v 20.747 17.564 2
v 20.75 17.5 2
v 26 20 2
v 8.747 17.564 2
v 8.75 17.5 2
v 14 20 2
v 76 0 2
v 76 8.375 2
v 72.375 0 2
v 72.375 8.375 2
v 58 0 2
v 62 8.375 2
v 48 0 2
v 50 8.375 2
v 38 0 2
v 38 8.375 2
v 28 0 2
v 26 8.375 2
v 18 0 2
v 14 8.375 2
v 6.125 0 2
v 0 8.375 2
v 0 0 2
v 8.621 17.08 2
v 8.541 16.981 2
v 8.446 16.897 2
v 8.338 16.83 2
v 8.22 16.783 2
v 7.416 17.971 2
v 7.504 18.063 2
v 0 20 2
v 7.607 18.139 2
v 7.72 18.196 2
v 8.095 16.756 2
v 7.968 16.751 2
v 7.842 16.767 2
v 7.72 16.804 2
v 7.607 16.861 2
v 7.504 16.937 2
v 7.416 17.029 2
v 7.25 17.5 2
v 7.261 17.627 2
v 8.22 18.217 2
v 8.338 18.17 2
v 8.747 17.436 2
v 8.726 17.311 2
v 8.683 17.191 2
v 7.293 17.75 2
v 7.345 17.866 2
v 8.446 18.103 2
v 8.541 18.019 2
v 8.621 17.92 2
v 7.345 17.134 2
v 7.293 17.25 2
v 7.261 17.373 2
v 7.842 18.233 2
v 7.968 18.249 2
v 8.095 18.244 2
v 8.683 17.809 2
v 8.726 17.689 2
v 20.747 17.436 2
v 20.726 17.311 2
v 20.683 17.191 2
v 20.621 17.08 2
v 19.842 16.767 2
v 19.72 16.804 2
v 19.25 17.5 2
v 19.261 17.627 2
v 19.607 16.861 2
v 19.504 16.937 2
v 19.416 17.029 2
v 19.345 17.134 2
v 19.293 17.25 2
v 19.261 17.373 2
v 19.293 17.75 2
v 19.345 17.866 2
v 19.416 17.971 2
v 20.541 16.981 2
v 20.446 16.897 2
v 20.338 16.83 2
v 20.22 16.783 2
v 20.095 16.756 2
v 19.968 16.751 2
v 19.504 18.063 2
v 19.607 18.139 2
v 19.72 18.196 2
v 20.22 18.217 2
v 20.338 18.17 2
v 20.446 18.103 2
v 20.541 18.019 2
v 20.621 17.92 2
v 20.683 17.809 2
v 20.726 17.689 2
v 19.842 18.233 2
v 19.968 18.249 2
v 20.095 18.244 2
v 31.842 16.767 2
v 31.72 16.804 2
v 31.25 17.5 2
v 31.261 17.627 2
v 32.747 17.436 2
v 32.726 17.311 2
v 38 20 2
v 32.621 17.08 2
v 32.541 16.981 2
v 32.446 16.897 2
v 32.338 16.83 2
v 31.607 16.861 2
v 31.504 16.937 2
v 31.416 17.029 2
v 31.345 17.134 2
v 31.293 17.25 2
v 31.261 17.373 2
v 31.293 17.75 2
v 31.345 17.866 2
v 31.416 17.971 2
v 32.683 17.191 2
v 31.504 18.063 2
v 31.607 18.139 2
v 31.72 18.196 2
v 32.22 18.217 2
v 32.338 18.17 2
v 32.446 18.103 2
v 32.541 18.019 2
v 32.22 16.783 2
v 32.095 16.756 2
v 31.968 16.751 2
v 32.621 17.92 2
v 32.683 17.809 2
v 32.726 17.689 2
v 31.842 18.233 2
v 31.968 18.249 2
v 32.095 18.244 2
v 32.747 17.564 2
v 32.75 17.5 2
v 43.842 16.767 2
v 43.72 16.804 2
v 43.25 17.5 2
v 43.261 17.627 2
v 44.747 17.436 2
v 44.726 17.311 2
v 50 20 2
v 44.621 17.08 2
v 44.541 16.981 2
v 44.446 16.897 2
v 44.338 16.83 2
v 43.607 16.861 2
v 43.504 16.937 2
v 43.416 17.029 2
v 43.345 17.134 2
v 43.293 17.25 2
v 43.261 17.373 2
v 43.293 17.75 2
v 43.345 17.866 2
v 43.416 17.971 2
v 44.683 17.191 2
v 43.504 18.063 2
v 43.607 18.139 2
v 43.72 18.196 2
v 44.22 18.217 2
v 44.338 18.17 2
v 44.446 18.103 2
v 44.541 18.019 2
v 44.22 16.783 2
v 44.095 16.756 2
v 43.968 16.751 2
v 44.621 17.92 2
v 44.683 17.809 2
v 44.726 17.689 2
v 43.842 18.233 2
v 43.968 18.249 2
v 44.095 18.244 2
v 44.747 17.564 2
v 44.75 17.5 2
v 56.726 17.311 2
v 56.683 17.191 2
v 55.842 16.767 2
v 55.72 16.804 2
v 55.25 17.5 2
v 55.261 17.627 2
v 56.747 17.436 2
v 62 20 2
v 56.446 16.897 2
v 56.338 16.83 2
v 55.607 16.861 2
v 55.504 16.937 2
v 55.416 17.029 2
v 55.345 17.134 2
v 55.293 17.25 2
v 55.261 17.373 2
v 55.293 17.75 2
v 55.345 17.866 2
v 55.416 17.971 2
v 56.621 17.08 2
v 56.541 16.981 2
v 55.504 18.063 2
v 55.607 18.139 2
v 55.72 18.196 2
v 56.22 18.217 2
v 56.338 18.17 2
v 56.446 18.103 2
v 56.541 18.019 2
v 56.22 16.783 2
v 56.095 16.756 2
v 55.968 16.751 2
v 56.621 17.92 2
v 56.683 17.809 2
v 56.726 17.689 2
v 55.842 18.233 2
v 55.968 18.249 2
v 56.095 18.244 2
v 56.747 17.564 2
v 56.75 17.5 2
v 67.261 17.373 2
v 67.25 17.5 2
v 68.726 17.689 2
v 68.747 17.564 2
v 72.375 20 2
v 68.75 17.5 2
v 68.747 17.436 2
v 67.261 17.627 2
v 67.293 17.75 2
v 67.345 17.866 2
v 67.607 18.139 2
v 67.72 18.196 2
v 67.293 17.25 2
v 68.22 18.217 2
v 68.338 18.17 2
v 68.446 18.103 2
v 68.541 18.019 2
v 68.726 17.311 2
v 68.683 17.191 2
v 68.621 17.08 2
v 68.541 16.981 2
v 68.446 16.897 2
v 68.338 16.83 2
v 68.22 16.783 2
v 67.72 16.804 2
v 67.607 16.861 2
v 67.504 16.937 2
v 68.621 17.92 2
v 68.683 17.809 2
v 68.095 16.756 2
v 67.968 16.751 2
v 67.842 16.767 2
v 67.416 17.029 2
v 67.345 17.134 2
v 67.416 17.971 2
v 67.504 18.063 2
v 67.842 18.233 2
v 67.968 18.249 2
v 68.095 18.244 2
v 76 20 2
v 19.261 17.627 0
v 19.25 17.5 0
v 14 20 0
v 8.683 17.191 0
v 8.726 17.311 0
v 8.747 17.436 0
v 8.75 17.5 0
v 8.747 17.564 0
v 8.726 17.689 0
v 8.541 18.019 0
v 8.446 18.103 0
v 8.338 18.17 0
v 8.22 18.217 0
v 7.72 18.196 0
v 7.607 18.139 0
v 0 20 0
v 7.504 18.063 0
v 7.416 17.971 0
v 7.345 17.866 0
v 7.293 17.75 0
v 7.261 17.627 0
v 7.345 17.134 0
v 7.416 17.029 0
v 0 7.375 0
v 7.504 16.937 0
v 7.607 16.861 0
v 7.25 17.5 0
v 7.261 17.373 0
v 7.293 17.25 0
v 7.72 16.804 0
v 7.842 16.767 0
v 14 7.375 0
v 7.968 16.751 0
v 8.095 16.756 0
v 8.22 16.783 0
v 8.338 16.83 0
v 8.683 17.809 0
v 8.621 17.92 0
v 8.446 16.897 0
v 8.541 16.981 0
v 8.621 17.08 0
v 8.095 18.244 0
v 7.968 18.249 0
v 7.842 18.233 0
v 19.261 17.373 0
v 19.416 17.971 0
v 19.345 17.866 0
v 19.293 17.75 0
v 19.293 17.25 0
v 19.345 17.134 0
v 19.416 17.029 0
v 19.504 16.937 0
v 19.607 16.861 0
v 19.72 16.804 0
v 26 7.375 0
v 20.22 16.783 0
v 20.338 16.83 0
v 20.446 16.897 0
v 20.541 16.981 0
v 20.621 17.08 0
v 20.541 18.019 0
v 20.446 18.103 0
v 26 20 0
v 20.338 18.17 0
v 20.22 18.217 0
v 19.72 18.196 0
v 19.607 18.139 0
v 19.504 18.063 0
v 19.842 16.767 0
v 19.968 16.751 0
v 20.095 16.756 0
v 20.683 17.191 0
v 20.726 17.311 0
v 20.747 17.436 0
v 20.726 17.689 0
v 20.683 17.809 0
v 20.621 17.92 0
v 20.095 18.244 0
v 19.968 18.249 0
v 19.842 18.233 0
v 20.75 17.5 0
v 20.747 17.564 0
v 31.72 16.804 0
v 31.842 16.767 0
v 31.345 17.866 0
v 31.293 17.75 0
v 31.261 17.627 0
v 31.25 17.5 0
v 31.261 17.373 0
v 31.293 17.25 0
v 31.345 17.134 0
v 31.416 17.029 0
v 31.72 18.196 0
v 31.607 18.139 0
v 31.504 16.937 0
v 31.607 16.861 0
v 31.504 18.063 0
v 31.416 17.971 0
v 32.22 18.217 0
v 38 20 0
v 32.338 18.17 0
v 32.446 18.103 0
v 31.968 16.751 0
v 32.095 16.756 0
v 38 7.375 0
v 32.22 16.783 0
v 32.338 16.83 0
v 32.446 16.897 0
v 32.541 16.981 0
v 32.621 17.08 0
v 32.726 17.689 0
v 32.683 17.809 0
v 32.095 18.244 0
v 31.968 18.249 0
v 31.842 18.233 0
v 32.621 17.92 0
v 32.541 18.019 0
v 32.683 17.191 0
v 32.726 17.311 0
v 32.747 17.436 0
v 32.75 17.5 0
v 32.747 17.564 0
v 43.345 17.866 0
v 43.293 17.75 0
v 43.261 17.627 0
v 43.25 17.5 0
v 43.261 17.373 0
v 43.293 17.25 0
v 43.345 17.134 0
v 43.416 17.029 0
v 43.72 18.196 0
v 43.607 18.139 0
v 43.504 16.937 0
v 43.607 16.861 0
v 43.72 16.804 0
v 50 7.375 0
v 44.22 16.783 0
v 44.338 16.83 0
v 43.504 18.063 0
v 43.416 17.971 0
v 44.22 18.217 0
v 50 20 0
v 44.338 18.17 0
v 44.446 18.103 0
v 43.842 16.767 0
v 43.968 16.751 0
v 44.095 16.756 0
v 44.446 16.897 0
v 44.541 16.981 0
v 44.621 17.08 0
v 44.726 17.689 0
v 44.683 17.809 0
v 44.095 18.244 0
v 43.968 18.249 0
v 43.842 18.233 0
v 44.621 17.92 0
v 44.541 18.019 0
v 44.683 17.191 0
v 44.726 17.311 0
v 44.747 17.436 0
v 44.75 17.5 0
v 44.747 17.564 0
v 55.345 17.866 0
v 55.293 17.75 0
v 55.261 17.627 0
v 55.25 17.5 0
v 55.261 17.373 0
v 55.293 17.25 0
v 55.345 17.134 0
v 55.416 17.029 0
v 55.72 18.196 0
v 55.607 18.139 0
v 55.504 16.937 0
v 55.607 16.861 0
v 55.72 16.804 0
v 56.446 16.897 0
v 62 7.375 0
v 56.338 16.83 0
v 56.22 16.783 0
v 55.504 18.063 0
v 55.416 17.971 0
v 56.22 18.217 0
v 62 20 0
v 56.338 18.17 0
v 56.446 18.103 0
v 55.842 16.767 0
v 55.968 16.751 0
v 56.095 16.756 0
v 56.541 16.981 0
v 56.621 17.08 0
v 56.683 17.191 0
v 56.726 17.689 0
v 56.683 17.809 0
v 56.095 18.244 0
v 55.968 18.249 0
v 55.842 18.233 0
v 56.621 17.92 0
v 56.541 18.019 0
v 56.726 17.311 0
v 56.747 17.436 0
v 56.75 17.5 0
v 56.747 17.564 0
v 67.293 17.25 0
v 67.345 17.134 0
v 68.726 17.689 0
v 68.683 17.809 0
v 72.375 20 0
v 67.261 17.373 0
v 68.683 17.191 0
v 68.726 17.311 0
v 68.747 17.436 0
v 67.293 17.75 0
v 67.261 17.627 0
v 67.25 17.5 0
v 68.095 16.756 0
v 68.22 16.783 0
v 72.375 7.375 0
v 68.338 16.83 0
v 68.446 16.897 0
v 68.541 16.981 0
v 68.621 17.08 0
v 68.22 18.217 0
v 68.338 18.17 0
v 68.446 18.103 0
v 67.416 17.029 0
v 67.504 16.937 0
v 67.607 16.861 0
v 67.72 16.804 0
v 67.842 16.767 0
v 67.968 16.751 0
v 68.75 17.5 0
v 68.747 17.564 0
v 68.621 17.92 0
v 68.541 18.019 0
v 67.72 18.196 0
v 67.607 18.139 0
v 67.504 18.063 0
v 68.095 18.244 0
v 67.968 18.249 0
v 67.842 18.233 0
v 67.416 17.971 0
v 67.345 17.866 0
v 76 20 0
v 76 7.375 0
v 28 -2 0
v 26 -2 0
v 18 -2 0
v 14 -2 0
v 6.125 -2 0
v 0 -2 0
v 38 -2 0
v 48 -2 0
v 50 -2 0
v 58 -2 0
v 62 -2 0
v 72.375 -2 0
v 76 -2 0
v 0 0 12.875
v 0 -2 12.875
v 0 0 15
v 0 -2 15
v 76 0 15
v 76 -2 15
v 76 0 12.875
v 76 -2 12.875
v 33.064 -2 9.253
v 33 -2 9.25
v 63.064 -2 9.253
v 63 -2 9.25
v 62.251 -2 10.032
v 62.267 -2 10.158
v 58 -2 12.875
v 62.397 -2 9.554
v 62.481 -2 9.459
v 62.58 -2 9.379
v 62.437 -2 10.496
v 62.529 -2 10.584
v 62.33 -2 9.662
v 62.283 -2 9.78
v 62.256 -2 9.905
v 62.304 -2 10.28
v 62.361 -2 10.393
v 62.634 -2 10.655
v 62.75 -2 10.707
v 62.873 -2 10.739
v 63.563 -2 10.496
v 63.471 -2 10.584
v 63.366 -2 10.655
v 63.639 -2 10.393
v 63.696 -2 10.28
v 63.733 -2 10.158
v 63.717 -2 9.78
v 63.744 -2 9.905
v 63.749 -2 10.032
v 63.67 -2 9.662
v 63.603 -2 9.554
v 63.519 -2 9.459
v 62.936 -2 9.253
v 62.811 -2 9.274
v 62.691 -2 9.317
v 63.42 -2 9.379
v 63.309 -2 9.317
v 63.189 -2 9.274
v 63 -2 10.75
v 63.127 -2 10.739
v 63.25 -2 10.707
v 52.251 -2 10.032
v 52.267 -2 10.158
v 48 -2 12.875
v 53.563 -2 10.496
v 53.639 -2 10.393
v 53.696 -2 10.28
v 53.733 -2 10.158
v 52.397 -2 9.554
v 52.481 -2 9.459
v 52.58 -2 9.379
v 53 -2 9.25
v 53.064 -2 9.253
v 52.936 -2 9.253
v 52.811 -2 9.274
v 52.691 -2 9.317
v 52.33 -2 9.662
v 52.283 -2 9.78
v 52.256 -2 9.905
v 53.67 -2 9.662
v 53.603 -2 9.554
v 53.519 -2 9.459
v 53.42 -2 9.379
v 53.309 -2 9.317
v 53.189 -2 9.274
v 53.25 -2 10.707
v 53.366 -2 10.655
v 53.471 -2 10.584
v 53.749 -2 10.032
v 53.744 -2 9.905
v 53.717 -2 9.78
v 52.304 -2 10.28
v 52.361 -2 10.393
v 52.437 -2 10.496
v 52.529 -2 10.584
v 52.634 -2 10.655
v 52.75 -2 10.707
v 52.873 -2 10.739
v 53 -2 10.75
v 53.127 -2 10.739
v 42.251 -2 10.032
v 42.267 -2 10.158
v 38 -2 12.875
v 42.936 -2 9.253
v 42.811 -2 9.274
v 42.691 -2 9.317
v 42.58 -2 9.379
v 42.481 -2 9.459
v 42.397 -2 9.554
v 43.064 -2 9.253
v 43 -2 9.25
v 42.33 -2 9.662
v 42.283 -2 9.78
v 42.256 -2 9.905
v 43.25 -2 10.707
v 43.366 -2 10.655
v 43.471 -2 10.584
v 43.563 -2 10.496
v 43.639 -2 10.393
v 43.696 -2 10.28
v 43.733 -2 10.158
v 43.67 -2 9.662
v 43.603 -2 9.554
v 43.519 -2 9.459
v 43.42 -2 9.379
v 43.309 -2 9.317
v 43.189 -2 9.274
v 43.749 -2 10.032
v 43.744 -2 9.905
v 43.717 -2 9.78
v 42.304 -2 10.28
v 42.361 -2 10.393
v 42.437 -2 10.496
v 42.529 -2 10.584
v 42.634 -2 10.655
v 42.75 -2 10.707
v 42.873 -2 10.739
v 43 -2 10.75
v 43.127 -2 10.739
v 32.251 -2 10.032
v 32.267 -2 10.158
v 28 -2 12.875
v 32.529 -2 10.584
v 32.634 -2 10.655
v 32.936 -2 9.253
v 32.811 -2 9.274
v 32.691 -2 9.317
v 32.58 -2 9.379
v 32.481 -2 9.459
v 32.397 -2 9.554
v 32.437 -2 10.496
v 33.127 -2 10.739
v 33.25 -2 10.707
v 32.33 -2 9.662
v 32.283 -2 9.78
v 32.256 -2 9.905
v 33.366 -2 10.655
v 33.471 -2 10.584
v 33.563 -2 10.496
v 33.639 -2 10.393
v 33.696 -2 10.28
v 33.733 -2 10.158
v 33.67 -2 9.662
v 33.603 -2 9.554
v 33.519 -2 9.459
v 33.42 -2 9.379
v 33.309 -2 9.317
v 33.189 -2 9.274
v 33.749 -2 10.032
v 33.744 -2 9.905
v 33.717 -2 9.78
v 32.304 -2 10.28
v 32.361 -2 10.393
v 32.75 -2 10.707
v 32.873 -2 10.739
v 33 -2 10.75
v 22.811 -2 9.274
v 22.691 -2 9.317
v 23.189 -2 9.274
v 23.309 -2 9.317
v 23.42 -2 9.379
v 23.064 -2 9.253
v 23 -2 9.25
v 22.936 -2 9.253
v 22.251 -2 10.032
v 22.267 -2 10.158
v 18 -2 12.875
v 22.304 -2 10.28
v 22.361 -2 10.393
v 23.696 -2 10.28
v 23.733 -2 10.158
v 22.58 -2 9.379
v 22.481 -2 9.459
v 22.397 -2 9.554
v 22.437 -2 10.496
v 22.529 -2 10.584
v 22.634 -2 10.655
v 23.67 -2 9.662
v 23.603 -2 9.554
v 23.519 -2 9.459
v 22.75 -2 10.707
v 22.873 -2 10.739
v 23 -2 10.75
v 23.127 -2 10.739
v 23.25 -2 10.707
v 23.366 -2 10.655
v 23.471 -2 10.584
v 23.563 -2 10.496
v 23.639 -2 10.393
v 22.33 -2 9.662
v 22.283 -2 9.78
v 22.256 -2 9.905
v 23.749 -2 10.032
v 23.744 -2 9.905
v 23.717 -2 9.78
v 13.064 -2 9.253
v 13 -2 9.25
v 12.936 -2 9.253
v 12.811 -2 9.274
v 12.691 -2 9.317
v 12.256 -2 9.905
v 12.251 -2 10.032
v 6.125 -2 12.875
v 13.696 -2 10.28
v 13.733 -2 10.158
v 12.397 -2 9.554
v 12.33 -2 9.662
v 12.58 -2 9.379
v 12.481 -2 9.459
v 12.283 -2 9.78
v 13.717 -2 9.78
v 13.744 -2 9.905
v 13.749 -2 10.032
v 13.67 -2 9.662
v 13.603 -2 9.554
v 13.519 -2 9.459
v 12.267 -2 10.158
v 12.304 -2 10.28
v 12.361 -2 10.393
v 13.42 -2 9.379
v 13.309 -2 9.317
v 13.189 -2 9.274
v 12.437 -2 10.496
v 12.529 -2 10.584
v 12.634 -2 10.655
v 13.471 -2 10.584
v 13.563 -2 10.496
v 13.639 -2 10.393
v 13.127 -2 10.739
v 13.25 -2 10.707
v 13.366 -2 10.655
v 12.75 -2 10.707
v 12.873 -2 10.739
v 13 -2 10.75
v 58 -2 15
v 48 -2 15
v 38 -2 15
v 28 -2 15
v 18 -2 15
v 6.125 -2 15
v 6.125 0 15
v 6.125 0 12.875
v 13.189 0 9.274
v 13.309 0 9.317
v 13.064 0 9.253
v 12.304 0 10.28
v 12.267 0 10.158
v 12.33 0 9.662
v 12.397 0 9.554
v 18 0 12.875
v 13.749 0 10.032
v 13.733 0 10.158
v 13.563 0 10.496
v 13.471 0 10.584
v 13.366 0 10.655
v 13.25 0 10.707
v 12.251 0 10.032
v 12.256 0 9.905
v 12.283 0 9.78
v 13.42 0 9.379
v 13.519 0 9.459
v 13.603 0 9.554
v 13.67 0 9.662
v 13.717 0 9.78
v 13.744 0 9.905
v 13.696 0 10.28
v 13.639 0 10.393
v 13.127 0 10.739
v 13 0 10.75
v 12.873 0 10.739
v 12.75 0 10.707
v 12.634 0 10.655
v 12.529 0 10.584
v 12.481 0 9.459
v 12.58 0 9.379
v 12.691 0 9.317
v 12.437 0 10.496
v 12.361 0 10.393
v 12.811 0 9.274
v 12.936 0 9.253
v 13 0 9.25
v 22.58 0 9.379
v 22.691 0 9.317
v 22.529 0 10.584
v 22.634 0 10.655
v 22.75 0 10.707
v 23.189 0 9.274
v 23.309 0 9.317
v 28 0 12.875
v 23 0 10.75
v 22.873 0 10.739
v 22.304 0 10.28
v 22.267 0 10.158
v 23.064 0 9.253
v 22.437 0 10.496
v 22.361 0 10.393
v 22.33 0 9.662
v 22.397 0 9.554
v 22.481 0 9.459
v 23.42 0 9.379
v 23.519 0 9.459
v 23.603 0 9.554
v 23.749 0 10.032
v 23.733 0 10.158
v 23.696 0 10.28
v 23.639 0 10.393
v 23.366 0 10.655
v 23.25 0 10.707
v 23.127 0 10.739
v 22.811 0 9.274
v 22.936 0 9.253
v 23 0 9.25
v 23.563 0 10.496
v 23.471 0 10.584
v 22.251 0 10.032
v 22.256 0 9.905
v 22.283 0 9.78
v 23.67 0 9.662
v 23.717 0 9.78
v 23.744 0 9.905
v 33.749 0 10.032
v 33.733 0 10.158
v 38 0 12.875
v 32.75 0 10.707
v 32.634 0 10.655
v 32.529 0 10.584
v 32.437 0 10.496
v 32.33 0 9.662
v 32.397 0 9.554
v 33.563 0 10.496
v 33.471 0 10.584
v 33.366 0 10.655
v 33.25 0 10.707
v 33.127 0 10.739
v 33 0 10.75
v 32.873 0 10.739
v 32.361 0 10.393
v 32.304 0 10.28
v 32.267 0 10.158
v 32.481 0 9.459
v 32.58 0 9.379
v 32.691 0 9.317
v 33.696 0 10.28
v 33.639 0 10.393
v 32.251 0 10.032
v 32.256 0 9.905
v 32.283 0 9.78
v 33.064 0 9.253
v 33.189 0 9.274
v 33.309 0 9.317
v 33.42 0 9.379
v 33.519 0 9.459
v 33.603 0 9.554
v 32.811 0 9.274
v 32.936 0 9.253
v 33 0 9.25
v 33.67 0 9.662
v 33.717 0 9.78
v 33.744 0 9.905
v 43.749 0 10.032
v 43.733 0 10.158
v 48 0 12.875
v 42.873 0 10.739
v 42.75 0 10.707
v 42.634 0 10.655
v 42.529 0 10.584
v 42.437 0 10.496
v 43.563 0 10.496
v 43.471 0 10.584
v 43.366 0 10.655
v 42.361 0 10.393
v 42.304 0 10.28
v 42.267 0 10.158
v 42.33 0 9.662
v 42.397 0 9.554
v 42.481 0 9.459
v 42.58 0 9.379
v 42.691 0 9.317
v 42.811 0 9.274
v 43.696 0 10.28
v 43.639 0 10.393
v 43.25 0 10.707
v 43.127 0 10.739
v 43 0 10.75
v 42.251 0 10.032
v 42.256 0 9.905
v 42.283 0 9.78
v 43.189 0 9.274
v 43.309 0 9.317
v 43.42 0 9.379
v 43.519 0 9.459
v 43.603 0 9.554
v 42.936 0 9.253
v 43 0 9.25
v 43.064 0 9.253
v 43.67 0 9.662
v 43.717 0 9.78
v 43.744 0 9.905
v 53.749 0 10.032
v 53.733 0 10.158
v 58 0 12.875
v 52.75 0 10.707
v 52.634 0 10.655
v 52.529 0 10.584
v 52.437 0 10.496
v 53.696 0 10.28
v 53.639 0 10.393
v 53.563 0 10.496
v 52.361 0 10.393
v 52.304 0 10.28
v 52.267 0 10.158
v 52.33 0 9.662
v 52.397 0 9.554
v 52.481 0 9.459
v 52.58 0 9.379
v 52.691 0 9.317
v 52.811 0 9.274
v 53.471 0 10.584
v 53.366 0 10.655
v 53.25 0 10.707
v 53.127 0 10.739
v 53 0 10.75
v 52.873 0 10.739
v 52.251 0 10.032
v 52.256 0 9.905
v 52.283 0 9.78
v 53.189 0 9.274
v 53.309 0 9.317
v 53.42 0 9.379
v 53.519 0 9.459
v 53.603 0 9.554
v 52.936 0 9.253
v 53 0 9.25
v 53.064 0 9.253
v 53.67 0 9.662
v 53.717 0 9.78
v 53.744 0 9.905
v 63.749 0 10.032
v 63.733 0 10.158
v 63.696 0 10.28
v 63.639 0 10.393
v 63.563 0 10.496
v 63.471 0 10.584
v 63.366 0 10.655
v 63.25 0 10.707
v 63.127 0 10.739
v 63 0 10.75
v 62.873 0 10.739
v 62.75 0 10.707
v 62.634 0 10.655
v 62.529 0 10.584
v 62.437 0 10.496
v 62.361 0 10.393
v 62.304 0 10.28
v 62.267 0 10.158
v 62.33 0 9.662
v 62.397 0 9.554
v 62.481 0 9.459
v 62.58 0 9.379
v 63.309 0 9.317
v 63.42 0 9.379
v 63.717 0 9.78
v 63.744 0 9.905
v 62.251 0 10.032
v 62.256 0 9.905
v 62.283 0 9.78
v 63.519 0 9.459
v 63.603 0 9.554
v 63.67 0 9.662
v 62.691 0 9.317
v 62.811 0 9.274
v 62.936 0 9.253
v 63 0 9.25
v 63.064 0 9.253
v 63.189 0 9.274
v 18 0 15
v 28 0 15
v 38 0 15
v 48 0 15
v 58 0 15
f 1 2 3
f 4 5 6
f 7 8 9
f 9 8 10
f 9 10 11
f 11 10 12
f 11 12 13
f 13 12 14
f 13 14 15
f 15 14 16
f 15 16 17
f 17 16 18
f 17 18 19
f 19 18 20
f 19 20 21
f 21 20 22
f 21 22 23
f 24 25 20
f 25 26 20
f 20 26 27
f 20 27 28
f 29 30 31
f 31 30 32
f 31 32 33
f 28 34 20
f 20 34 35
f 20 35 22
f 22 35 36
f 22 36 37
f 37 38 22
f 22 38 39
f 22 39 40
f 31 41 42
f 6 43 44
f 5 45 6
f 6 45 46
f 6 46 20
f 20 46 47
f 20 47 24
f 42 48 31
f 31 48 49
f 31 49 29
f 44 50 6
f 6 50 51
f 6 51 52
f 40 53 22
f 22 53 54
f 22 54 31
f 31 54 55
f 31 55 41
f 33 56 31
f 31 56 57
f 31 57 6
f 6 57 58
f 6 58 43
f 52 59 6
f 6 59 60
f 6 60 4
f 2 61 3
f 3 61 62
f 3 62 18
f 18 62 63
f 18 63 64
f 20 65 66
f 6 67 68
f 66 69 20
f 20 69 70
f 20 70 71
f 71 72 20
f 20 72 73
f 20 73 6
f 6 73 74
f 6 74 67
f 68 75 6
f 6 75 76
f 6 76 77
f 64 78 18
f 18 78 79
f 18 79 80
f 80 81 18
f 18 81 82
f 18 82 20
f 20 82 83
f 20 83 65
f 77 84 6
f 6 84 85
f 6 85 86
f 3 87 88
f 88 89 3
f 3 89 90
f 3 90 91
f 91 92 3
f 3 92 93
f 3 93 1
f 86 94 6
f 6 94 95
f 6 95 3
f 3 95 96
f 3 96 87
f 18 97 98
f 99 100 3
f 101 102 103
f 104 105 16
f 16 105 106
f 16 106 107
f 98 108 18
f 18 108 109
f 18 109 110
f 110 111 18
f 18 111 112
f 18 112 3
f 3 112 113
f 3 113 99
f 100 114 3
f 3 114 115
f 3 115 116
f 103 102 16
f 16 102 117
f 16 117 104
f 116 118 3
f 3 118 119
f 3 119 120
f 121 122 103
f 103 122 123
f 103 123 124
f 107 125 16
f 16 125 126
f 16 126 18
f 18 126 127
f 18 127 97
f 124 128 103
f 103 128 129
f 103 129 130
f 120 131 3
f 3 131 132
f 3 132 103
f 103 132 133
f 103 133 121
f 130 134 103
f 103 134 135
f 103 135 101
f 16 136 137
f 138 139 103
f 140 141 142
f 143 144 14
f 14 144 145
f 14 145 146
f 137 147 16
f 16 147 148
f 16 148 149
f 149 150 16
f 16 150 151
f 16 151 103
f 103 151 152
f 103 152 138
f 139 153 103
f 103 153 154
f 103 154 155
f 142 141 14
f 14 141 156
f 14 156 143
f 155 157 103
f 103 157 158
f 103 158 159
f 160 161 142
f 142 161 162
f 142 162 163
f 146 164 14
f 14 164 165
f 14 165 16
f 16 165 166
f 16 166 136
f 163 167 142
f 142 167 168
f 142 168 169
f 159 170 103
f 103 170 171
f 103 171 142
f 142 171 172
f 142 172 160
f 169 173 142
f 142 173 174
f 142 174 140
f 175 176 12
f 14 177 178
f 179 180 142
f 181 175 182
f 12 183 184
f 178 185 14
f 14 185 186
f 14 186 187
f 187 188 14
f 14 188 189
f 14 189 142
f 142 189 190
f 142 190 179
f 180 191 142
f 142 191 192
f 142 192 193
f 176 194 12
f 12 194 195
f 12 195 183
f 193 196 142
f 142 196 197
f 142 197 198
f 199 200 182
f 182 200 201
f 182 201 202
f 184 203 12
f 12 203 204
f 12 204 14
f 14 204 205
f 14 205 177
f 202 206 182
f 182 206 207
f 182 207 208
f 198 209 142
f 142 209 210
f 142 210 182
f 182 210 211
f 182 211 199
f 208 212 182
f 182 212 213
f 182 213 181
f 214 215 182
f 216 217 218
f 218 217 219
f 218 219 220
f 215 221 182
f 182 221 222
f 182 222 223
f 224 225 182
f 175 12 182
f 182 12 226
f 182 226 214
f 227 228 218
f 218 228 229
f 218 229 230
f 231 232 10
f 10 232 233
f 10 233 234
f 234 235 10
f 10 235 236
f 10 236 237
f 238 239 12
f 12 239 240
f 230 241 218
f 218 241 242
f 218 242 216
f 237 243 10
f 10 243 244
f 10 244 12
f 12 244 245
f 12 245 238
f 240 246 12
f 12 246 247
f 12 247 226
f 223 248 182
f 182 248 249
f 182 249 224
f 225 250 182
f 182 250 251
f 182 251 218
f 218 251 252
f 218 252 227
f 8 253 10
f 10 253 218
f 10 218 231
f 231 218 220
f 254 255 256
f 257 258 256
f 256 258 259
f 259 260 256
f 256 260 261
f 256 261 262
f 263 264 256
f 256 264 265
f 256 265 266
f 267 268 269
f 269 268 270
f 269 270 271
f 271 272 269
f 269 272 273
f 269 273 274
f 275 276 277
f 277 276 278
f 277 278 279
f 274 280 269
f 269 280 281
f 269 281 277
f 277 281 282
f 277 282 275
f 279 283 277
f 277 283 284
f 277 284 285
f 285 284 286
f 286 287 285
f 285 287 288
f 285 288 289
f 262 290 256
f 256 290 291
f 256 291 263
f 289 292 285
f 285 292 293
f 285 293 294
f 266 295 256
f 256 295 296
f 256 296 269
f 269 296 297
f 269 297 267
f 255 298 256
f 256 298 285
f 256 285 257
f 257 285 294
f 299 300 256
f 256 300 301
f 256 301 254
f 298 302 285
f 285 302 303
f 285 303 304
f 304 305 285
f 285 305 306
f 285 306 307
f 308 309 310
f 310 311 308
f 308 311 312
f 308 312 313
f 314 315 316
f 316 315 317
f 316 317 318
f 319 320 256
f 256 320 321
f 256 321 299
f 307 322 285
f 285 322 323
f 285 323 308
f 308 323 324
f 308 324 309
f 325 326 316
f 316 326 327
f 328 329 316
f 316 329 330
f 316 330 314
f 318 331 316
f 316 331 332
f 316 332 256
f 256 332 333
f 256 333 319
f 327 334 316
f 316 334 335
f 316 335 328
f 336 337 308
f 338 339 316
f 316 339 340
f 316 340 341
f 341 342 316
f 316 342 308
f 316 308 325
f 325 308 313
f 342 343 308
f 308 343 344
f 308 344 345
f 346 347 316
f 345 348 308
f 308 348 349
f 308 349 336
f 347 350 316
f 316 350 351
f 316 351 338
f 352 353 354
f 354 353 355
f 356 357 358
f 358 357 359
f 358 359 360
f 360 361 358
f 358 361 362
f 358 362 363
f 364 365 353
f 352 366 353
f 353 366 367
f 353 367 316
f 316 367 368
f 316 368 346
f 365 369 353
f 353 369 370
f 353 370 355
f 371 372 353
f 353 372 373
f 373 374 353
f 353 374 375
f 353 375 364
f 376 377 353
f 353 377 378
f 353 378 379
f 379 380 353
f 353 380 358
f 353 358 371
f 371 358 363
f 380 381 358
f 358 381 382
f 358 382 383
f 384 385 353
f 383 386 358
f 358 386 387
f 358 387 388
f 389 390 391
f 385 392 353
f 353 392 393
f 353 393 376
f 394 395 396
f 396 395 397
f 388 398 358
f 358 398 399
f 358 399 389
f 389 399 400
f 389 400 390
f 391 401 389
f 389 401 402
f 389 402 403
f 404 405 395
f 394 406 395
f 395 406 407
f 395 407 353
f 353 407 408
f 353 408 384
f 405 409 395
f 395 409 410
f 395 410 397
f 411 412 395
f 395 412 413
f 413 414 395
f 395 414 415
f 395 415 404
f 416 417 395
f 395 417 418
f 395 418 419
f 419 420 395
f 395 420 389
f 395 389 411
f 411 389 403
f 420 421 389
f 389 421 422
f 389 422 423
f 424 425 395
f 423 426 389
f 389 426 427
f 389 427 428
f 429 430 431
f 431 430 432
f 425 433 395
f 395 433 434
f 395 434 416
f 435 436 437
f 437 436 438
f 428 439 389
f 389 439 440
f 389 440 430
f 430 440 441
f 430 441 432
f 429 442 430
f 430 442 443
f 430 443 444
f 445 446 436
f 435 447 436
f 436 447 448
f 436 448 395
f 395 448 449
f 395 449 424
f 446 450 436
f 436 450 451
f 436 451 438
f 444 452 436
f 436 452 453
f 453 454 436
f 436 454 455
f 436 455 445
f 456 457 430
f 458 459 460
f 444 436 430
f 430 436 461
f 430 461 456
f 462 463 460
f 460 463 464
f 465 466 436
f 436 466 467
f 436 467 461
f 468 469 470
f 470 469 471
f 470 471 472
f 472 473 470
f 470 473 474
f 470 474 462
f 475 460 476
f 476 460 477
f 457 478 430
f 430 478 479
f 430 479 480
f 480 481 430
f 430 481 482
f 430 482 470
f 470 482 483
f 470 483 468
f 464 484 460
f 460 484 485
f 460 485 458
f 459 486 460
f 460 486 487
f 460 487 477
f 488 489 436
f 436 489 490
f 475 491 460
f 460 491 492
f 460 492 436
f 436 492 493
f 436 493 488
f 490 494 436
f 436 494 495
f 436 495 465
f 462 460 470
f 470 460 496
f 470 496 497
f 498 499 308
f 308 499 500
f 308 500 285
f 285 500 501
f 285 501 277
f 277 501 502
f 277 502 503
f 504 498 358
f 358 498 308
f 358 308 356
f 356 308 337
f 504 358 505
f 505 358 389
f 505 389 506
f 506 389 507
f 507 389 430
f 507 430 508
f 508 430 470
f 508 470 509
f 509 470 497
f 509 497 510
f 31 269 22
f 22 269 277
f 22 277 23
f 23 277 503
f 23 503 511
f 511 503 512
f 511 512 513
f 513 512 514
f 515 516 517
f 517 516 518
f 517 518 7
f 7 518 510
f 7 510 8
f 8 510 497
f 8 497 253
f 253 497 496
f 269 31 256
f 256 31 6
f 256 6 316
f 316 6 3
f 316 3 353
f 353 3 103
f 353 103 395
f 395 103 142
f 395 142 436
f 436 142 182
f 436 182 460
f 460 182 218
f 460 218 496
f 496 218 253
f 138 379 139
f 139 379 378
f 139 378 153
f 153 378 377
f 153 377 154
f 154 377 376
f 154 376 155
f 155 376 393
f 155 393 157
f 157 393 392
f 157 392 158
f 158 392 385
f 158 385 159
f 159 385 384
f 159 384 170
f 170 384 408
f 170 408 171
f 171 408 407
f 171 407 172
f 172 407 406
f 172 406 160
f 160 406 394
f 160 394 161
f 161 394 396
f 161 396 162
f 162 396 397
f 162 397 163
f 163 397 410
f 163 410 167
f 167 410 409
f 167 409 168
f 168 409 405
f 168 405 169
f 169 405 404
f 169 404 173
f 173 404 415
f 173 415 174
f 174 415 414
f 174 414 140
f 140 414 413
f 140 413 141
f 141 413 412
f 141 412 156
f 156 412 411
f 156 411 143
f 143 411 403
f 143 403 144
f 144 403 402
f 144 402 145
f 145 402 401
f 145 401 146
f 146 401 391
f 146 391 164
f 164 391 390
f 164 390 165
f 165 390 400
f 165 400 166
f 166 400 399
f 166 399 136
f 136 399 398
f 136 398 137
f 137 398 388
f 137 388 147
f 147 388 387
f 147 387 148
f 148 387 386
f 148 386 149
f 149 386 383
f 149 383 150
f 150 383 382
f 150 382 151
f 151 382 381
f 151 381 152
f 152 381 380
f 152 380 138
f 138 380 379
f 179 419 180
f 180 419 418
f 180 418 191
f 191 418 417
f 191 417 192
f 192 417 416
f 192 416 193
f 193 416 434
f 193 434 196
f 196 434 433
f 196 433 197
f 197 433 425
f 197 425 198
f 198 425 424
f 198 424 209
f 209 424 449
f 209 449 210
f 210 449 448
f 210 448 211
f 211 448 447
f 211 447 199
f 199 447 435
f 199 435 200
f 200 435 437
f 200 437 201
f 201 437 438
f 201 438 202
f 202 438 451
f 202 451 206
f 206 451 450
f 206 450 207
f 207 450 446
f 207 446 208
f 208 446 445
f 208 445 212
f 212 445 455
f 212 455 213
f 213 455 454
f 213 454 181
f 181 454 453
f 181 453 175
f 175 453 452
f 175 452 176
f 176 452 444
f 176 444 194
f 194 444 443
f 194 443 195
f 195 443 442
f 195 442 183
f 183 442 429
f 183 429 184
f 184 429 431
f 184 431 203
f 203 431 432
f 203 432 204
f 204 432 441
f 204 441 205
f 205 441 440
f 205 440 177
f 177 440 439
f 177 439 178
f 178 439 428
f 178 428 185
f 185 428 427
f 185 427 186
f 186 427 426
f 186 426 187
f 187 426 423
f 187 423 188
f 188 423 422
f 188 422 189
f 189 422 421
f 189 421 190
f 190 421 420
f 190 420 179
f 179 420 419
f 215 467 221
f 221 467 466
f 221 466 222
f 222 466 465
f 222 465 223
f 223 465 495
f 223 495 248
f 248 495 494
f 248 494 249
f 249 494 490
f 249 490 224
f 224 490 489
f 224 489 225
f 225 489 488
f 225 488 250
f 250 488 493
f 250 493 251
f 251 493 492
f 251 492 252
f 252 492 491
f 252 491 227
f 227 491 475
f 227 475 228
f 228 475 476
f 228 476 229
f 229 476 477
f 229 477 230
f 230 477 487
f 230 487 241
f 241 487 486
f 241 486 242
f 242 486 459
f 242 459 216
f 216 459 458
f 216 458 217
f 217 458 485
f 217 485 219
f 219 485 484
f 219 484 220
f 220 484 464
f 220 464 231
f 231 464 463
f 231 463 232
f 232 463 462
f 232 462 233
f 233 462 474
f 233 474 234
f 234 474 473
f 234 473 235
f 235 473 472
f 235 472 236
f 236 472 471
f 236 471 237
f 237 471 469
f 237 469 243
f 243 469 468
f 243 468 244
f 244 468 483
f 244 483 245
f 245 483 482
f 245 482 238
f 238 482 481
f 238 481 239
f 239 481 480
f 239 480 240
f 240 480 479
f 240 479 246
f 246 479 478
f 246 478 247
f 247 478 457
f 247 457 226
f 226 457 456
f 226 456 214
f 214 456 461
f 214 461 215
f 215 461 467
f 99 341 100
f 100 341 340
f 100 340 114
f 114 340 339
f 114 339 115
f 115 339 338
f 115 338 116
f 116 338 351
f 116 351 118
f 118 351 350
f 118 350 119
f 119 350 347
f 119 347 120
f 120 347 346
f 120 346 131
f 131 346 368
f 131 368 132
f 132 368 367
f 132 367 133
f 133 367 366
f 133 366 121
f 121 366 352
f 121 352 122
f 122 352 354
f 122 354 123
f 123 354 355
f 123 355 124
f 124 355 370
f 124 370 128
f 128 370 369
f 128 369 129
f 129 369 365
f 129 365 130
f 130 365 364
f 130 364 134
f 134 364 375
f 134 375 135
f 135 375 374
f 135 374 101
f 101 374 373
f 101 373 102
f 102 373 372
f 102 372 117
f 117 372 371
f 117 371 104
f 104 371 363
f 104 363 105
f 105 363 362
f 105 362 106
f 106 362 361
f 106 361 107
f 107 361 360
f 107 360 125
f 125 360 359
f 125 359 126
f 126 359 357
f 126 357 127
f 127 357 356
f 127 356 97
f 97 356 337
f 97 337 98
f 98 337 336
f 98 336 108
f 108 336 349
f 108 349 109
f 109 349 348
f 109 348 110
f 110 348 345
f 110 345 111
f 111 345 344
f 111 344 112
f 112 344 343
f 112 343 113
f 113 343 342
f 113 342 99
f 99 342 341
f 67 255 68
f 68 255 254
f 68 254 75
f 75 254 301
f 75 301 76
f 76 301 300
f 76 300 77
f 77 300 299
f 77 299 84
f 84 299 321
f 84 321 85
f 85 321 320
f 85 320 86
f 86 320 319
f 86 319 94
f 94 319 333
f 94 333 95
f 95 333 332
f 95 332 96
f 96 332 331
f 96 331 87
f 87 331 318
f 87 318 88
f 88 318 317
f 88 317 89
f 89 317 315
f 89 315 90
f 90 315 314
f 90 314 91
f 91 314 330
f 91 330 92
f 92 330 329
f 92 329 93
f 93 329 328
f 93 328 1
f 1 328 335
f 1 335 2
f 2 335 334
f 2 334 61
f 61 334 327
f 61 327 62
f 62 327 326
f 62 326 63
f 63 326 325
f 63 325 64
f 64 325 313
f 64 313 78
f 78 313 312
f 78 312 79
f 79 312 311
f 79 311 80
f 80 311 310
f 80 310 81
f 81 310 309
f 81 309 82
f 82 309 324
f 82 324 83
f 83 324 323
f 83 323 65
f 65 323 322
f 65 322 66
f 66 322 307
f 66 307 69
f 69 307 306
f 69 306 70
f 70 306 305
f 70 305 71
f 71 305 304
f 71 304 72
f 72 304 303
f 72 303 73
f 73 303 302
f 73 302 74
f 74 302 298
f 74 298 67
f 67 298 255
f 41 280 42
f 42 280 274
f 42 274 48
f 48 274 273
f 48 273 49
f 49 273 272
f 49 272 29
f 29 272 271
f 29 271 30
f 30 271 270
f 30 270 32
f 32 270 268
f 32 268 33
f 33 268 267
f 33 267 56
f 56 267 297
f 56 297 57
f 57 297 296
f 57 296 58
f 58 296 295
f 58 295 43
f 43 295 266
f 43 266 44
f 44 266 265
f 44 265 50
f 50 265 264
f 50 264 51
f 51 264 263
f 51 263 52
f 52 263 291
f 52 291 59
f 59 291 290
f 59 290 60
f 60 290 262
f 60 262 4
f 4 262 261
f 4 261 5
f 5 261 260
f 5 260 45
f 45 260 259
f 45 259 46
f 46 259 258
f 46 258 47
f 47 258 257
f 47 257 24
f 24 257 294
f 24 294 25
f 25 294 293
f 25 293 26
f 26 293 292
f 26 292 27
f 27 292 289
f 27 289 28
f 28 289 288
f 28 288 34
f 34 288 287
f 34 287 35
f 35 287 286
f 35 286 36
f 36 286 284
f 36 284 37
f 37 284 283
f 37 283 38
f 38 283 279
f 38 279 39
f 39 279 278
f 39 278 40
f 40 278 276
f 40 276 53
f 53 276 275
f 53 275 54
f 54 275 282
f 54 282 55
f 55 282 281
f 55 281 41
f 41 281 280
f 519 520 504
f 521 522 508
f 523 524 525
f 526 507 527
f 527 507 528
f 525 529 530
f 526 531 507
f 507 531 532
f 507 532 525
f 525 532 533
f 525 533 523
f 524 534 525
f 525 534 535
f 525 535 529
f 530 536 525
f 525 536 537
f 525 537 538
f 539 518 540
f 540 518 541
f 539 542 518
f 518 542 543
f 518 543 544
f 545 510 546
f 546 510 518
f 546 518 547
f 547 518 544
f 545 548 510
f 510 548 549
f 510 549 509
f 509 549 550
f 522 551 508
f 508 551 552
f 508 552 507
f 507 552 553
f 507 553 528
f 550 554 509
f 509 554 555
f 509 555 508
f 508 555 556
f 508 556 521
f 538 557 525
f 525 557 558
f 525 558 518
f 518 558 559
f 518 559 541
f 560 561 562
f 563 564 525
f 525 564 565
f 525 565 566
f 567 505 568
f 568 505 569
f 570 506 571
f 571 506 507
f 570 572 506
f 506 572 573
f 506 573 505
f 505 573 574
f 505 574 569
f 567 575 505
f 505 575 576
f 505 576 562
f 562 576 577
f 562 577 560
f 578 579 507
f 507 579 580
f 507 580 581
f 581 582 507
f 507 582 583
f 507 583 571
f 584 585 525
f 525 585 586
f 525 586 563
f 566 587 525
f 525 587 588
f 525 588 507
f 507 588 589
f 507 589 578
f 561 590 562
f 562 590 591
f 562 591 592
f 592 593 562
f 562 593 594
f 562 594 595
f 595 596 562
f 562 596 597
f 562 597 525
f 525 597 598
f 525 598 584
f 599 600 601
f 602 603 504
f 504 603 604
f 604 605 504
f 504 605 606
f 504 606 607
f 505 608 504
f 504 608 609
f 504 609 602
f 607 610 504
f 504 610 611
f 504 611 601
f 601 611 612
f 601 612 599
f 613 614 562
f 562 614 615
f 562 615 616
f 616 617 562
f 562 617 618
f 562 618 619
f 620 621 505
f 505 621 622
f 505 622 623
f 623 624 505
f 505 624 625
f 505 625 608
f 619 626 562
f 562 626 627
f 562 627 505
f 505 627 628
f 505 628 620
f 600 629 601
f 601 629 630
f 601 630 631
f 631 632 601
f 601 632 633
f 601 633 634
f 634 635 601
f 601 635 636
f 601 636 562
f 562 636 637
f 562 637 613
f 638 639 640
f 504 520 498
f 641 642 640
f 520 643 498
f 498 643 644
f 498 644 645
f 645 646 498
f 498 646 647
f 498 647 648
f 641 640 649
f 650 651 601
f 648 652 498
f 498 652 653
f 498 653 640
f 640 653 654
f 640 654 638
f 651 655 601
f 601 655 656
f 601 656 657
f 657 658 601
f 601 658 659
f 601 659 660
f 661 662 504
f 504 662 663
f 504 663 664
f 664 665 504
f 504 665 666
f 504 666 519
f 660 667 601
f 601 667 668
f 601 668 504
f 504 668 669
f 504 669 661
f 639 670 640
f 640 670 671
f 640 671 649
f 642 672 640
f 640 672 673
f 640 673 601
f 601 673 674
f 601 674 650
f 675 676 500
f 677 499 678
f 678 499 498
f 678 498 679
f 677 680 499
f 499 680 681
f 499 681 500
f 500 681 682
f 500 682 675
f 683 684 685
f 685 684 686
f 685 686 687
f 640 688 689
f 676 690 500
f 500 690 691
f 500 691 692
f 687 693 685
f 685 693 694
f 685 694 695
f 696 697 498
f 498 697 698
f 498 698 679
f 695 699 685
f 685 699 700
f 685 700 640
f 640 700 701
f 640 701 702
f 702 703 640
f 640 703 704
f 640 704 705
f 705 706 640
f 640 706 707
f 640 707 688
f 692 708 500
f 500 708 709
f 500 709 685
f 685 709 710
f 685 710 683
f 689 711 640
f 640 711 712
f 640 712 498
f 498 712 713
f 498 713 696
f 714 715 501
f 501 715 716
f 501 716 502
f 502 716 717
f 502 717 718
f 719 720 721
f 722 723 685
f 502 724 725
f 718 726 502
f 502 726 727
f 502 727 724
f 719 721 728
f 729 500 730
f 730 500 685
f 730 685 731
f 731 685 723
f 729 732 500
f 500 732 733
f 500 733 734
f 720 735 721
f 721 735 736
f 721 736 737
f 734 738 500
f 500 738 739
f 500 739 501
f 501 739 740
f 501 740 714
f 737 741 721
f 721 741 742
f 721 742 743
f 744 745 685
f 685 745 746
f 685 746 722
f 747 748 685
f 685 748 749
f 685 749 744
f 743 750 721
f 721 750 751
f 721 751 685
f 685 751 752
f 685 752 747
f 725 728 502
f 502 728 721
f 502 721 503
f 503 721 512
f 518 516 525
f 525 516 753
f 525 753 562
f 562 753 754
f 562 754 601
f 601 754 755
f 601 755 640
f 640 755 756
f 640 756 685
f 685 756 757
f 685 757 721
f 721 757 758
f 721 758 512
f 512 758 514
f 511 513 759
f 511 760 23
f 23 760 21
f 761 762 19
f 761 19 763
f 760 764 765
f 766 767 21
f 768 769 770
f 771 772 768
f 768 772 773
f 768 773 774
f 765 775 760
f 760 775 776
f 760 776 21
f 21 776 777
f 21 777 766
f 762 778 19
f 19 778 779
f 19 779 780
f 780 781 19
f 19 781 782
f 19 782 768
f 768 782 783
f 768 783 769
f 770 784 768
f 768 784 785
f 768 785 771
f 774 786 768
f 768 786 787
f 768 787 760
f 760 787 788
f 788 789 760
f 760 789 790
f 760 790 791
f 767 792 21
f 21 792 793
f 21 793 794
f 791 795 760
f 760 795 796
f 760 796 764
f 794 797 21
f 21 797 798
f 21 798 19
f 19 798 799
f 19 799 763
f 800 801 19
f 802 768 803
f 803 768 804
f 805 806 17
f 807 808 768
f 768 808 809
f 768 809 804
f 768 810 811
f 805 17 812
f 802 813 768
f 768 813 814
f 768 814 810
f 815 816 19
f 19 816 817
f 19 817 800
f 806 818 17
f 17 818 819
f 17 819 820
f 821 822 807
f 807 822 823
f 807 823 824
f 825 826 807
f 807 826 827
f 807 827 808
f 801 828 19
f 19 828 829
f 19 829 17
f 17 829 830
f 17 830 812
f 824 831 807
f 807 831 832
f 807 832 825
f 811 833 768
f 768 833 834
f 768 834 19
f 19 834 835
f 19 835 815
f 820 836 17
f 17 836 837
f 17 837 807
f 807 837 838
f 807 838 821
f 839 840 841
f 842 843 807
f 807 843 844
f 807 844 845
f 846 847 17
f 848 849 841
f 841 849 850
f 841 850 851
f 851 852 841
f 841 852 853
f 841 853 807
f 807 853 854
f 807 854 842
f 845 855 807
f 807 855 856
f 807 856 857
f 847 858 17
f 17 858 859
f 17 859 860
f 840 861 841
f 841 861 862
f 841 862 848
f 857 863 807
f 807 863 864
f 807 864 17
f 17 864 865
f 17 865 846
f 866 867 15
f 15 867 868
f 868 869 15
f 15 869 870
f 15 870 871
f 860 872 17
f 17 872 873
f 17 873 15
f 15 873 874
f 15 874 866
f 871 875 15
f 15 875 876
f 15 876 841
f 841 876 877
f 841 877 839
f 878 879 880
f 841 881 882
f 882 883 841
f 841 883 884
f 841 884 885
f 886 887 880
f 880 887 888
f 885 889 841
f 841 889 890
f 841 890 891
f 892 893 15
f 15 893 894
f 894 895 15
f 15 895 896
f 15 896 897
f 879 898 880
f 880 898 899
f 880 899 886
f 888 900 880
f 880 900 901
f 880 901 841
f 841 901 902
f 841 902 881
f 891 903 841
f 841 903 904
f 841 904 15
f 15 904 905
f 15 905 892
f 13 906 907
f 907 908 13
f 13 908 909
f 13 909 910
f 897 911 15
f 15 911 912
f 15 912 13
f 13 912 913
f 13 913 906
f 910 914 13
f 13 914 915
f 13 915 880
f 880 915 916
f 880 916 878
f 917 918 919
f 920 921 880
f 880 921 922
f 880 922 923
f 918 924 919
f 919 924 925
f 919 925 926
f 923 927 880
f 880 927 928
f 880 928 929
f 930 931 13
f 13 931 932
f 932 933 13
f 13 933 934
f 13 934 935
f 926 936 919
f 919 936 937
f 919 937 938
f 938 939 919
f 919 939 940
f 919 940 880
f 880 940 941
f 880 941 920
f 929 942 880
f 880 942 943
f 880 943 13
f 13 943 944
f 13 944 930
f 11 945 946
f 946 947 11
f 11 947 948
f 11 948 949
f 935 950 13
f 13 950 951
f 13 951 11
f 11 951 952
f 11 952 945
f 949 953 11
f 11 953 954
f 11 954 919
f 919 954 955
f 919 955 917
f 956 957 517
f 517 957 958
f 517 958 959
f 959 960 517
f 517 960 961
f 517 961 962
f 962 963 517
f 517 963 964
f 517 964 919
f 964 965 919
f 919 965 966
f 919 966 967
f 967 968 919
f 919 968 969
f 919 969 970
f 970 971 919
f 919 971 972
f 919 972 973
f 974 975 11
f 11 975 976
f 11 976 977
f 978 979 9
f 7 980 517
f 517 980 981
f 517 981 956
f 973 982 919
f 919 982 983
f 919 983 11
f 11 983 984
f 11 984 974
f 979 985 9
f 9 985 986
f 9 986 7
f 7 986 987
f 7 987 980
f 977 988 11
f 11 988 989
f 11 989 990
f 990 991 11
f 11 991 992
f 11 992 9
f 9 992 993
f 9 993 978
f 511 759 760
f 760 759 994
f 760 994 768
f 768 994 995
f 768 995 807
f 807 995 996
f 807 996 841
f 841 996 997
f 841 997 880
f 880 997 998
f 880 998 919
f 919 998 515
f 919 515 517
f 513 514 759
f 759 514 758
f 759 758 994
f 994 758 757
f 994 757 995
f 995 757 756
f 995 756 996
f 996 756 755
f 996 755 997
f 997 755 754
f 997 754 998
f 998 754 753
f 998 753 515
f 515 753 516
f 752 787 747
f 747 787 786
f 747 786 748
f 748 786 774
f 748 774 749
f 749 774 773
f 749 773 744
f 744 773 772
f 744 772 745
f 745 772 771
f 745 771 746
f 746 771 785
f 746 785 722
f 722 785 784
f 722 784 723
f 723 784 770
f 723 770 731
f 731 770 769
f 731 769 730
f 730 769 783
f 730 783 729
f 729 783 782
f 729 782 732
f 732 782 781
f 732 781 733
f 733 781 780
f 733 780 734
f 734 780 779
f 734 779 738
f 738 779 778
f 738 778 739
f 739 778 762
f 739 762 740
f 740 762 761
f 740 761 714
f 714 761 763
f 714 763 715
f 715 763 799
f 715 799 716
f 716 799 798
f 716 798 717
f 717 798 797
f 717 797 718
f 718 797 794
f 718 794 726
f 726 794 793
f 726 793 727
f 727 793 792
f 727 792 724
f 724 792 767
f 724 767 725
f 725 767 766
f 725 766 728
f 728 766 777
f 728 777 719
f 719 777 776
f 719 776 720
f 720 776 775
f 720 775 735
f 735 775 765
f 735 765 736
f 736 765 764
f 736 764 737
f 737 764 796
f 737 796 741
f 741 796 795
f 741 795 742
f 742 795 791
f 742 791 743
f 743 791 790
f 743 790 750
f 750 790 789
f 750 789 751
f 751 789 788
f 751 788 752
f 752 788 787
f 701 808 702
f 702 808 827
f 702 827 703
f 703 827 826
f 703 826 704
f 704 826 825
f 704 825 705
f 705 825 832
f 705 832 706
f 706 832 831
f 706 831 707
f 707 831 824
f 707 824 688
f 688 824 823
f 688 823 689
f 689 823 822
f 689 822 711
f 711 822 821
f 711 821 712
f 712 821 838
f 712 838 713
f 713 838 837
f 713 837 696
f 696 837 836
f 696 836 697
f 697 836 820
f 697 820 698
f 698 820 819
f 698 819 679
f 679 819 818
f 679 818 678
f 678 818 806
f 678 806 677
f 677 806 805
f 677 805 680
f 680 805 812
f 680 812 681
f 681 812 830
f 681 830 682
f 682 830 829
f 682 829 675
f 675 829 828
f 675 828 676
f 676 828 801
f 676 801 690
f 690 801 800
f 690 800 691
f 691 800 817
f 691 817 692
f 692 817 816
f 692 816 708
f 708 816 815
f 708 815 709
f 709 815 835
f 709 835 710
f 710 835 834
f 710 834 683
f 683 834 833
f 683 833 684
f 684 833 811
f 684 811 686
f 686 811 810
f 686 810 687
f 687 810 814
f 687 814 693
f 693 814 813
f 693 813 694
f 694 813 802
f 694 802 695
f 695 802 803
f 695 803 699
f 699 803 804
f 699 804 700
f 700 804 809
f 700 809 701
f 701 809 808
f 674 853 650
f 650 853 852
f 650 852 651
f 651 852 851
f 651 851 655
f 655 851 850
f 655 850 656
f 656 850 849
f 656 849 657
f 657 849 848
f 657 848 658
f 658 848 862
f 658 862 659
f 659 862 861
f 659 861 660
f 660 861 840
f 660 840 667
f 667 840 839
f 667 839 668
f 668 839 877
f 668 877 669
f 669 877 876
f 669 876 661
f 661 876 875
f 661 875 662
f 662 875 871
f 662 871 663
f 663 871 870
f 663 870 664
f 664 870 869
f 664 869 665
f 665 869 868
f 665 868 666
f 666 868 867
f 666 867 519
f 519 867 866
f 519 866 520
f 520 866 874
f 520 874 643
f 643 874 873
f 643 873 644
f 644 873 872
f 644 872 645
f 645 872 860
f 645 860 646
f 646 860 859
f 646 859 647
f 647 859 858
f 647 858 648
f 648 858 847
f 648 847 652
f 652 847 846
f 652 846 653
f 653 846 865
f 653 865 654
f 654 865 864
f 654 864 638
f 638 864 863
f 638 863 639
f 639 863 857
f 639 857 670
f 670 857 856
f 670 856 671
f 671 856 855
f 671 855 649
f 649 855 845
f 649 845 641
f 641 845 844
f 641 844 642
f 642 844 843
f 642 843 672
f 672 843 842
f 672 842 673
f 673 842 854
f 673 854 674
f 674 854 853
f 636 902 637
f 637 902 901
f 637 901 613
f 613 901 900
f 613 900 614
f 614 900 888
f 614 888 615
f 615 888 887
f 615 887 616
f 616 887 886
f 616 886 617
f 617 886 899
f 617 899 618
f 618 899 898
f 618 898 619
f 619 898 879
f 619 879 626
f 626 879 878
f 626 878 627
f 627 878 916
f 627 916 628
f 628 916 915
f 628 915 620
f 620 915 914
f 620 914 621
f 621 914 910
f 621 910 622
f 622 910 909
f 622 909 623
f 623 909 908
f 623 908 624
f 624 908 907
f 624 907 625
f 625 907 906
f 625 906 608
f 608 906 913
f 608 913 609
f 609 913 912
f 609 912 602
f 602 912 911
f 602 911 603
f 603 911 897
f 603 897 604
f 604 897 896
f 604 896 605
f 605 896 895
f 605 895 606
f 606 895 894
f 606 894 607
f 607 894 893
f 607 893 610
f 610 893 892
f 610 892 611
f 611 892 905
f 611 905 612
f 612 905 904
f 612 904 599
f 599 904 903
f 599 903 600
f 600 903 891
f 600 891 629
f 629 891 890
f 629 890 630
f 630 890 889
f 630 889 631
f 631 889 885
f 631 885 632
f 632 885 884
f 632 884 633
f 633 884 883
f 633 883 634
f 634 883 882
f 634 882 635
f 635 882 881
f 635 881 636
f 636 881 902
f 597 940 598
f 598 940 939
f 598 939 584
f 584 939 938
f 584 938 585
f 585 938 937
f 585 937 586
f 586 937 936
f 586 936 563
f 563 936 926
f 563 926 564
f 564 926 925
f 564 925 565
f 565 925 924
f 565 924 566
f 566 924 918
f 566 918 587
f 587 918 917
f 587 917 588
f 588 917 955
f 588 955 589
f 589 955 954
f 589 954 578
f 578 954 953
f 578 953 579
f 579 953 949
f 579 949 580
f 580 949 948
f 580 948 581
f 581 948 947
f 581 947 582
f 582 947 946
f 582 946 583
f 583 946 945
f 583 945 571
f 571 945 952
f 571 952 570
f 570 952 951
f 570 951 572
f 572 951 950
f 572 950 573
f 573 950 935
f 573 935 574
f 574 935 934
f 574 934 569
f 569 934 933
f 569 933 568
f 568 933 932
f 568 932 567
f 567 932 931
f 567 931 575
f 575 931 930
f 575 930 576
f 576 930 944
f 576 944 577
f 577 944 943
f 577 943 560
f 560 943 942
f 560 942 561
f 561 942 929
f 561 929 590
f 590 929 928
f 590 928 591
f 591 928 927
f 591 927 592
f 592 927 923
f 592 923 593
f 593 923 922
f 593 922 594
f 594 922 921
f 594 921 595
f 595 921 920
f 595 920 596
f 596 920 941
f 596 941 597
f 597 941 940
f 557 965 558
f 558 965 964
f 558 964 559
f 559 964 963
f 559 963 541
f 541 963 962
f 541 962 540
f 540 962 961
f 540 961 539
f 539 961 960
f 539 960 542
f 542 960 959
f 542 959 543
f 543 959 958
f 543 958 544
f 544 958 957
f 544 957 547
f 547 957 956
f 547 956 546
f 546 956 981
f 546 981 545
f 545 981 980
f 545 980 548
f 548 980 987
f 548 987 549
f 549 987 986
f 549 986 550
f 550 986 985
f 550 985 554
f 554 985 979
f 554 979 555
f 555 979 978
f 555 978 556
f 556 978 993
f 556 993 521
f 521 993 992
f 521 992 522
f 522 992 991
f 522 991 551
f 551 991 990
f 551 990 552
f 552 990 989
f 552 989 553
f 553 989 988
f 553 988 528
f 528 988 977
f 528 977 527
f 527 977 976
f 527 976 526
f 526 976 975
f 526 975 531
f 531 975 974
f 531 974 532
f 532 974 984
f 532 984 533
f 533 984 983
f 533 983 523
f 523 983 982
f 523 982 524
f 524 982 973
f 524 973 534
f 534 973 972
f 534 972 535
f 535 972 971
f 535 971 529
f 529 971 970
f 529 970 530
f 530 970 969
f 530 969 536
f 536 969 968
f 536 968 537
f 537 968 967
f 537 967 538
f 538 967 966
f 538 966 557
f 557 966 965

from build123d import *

# Parameters (mm, degrees)
SKETCH2_W           = 76
SKETCH2_H           = 20
SKETCH2_R           = 0.75
BOSS_EXTRUDE1_DEPTH = 2
SKETCH3_W           = 76
SKETCH3_H           = 15
SKETCH3_R           = 0.75
BOSS_EXTRUDE2_DEPTH = 2


with BuildPart() as part:
    # Sketch2 → Boss-Extrude1 (new body)
    with BuildSketch(Plane.XY):
        with Locations((38, 10)):
            Rectangle(SKETCH2_W, SKETCH2_H)
        with Locations((44, 17.5)):
            Circle(SKETCH2_R, mode=Mode.SUBTRACT)
        with Locations((56, 17.5)):
            Circle(SKETCH2_R, mode=Mode.SUBTRACT)
        with Locations((68, 17.5)):
            Circle(SKETCH2_R, mode=Mode.SUBTRACT)
        with Locations((32, 17.5)):
            Circle(SKETCH2_R, mode=Mode.SUBTRACT)
        with Locations((20, 17.5)):
            Circle(SKETCH2_R, mode=Mode.SUBTRACT)
        with Locations((8, 17.5)):
            Circle(SKETCH2_R, mode=Mode.SUBTRACT)
    extrude(amount=BOSS_EXTRUDE1_DEPTH)

    # Sketch3 → Boss-Extrude2 (add)
    with BuildSketch(Plane(origin=(0, 0, 0), x_dir=(-1, 0, 0), z_dir=(0, -1, 0))):
        with Locations((-38, -7.5)):
            Rectangle(SKETCH3_W, SKETCH3_H)
        with Locations((-13, -10)):
            Circle(SKETCH3_R, mode=Mode.SUBTRACT)
        with Locations((-23, -10)):
            Circle(SKETCH3_R, mode=Mode.SUBTRACT)
        with Locations((-33, -10)):
            Circle(SKETCH3_R, mode=Mode.SUBTRACT)
        with Locations((-43, -10)):
            Circle(SKETCH3_R, mode=Mode.SUBTRACT)
        with Locations((-53, -10)):
            Circle(SKETCH3_R, mode=Mode.SUBTRACT)
        with Locations((-63, -10)):
            Circle(SKETCH3_R, mode=Mode.SUBTRACT)
    extrude(amount=BOSS_EXTRUDE2_DEPTH)


solid = part.part
